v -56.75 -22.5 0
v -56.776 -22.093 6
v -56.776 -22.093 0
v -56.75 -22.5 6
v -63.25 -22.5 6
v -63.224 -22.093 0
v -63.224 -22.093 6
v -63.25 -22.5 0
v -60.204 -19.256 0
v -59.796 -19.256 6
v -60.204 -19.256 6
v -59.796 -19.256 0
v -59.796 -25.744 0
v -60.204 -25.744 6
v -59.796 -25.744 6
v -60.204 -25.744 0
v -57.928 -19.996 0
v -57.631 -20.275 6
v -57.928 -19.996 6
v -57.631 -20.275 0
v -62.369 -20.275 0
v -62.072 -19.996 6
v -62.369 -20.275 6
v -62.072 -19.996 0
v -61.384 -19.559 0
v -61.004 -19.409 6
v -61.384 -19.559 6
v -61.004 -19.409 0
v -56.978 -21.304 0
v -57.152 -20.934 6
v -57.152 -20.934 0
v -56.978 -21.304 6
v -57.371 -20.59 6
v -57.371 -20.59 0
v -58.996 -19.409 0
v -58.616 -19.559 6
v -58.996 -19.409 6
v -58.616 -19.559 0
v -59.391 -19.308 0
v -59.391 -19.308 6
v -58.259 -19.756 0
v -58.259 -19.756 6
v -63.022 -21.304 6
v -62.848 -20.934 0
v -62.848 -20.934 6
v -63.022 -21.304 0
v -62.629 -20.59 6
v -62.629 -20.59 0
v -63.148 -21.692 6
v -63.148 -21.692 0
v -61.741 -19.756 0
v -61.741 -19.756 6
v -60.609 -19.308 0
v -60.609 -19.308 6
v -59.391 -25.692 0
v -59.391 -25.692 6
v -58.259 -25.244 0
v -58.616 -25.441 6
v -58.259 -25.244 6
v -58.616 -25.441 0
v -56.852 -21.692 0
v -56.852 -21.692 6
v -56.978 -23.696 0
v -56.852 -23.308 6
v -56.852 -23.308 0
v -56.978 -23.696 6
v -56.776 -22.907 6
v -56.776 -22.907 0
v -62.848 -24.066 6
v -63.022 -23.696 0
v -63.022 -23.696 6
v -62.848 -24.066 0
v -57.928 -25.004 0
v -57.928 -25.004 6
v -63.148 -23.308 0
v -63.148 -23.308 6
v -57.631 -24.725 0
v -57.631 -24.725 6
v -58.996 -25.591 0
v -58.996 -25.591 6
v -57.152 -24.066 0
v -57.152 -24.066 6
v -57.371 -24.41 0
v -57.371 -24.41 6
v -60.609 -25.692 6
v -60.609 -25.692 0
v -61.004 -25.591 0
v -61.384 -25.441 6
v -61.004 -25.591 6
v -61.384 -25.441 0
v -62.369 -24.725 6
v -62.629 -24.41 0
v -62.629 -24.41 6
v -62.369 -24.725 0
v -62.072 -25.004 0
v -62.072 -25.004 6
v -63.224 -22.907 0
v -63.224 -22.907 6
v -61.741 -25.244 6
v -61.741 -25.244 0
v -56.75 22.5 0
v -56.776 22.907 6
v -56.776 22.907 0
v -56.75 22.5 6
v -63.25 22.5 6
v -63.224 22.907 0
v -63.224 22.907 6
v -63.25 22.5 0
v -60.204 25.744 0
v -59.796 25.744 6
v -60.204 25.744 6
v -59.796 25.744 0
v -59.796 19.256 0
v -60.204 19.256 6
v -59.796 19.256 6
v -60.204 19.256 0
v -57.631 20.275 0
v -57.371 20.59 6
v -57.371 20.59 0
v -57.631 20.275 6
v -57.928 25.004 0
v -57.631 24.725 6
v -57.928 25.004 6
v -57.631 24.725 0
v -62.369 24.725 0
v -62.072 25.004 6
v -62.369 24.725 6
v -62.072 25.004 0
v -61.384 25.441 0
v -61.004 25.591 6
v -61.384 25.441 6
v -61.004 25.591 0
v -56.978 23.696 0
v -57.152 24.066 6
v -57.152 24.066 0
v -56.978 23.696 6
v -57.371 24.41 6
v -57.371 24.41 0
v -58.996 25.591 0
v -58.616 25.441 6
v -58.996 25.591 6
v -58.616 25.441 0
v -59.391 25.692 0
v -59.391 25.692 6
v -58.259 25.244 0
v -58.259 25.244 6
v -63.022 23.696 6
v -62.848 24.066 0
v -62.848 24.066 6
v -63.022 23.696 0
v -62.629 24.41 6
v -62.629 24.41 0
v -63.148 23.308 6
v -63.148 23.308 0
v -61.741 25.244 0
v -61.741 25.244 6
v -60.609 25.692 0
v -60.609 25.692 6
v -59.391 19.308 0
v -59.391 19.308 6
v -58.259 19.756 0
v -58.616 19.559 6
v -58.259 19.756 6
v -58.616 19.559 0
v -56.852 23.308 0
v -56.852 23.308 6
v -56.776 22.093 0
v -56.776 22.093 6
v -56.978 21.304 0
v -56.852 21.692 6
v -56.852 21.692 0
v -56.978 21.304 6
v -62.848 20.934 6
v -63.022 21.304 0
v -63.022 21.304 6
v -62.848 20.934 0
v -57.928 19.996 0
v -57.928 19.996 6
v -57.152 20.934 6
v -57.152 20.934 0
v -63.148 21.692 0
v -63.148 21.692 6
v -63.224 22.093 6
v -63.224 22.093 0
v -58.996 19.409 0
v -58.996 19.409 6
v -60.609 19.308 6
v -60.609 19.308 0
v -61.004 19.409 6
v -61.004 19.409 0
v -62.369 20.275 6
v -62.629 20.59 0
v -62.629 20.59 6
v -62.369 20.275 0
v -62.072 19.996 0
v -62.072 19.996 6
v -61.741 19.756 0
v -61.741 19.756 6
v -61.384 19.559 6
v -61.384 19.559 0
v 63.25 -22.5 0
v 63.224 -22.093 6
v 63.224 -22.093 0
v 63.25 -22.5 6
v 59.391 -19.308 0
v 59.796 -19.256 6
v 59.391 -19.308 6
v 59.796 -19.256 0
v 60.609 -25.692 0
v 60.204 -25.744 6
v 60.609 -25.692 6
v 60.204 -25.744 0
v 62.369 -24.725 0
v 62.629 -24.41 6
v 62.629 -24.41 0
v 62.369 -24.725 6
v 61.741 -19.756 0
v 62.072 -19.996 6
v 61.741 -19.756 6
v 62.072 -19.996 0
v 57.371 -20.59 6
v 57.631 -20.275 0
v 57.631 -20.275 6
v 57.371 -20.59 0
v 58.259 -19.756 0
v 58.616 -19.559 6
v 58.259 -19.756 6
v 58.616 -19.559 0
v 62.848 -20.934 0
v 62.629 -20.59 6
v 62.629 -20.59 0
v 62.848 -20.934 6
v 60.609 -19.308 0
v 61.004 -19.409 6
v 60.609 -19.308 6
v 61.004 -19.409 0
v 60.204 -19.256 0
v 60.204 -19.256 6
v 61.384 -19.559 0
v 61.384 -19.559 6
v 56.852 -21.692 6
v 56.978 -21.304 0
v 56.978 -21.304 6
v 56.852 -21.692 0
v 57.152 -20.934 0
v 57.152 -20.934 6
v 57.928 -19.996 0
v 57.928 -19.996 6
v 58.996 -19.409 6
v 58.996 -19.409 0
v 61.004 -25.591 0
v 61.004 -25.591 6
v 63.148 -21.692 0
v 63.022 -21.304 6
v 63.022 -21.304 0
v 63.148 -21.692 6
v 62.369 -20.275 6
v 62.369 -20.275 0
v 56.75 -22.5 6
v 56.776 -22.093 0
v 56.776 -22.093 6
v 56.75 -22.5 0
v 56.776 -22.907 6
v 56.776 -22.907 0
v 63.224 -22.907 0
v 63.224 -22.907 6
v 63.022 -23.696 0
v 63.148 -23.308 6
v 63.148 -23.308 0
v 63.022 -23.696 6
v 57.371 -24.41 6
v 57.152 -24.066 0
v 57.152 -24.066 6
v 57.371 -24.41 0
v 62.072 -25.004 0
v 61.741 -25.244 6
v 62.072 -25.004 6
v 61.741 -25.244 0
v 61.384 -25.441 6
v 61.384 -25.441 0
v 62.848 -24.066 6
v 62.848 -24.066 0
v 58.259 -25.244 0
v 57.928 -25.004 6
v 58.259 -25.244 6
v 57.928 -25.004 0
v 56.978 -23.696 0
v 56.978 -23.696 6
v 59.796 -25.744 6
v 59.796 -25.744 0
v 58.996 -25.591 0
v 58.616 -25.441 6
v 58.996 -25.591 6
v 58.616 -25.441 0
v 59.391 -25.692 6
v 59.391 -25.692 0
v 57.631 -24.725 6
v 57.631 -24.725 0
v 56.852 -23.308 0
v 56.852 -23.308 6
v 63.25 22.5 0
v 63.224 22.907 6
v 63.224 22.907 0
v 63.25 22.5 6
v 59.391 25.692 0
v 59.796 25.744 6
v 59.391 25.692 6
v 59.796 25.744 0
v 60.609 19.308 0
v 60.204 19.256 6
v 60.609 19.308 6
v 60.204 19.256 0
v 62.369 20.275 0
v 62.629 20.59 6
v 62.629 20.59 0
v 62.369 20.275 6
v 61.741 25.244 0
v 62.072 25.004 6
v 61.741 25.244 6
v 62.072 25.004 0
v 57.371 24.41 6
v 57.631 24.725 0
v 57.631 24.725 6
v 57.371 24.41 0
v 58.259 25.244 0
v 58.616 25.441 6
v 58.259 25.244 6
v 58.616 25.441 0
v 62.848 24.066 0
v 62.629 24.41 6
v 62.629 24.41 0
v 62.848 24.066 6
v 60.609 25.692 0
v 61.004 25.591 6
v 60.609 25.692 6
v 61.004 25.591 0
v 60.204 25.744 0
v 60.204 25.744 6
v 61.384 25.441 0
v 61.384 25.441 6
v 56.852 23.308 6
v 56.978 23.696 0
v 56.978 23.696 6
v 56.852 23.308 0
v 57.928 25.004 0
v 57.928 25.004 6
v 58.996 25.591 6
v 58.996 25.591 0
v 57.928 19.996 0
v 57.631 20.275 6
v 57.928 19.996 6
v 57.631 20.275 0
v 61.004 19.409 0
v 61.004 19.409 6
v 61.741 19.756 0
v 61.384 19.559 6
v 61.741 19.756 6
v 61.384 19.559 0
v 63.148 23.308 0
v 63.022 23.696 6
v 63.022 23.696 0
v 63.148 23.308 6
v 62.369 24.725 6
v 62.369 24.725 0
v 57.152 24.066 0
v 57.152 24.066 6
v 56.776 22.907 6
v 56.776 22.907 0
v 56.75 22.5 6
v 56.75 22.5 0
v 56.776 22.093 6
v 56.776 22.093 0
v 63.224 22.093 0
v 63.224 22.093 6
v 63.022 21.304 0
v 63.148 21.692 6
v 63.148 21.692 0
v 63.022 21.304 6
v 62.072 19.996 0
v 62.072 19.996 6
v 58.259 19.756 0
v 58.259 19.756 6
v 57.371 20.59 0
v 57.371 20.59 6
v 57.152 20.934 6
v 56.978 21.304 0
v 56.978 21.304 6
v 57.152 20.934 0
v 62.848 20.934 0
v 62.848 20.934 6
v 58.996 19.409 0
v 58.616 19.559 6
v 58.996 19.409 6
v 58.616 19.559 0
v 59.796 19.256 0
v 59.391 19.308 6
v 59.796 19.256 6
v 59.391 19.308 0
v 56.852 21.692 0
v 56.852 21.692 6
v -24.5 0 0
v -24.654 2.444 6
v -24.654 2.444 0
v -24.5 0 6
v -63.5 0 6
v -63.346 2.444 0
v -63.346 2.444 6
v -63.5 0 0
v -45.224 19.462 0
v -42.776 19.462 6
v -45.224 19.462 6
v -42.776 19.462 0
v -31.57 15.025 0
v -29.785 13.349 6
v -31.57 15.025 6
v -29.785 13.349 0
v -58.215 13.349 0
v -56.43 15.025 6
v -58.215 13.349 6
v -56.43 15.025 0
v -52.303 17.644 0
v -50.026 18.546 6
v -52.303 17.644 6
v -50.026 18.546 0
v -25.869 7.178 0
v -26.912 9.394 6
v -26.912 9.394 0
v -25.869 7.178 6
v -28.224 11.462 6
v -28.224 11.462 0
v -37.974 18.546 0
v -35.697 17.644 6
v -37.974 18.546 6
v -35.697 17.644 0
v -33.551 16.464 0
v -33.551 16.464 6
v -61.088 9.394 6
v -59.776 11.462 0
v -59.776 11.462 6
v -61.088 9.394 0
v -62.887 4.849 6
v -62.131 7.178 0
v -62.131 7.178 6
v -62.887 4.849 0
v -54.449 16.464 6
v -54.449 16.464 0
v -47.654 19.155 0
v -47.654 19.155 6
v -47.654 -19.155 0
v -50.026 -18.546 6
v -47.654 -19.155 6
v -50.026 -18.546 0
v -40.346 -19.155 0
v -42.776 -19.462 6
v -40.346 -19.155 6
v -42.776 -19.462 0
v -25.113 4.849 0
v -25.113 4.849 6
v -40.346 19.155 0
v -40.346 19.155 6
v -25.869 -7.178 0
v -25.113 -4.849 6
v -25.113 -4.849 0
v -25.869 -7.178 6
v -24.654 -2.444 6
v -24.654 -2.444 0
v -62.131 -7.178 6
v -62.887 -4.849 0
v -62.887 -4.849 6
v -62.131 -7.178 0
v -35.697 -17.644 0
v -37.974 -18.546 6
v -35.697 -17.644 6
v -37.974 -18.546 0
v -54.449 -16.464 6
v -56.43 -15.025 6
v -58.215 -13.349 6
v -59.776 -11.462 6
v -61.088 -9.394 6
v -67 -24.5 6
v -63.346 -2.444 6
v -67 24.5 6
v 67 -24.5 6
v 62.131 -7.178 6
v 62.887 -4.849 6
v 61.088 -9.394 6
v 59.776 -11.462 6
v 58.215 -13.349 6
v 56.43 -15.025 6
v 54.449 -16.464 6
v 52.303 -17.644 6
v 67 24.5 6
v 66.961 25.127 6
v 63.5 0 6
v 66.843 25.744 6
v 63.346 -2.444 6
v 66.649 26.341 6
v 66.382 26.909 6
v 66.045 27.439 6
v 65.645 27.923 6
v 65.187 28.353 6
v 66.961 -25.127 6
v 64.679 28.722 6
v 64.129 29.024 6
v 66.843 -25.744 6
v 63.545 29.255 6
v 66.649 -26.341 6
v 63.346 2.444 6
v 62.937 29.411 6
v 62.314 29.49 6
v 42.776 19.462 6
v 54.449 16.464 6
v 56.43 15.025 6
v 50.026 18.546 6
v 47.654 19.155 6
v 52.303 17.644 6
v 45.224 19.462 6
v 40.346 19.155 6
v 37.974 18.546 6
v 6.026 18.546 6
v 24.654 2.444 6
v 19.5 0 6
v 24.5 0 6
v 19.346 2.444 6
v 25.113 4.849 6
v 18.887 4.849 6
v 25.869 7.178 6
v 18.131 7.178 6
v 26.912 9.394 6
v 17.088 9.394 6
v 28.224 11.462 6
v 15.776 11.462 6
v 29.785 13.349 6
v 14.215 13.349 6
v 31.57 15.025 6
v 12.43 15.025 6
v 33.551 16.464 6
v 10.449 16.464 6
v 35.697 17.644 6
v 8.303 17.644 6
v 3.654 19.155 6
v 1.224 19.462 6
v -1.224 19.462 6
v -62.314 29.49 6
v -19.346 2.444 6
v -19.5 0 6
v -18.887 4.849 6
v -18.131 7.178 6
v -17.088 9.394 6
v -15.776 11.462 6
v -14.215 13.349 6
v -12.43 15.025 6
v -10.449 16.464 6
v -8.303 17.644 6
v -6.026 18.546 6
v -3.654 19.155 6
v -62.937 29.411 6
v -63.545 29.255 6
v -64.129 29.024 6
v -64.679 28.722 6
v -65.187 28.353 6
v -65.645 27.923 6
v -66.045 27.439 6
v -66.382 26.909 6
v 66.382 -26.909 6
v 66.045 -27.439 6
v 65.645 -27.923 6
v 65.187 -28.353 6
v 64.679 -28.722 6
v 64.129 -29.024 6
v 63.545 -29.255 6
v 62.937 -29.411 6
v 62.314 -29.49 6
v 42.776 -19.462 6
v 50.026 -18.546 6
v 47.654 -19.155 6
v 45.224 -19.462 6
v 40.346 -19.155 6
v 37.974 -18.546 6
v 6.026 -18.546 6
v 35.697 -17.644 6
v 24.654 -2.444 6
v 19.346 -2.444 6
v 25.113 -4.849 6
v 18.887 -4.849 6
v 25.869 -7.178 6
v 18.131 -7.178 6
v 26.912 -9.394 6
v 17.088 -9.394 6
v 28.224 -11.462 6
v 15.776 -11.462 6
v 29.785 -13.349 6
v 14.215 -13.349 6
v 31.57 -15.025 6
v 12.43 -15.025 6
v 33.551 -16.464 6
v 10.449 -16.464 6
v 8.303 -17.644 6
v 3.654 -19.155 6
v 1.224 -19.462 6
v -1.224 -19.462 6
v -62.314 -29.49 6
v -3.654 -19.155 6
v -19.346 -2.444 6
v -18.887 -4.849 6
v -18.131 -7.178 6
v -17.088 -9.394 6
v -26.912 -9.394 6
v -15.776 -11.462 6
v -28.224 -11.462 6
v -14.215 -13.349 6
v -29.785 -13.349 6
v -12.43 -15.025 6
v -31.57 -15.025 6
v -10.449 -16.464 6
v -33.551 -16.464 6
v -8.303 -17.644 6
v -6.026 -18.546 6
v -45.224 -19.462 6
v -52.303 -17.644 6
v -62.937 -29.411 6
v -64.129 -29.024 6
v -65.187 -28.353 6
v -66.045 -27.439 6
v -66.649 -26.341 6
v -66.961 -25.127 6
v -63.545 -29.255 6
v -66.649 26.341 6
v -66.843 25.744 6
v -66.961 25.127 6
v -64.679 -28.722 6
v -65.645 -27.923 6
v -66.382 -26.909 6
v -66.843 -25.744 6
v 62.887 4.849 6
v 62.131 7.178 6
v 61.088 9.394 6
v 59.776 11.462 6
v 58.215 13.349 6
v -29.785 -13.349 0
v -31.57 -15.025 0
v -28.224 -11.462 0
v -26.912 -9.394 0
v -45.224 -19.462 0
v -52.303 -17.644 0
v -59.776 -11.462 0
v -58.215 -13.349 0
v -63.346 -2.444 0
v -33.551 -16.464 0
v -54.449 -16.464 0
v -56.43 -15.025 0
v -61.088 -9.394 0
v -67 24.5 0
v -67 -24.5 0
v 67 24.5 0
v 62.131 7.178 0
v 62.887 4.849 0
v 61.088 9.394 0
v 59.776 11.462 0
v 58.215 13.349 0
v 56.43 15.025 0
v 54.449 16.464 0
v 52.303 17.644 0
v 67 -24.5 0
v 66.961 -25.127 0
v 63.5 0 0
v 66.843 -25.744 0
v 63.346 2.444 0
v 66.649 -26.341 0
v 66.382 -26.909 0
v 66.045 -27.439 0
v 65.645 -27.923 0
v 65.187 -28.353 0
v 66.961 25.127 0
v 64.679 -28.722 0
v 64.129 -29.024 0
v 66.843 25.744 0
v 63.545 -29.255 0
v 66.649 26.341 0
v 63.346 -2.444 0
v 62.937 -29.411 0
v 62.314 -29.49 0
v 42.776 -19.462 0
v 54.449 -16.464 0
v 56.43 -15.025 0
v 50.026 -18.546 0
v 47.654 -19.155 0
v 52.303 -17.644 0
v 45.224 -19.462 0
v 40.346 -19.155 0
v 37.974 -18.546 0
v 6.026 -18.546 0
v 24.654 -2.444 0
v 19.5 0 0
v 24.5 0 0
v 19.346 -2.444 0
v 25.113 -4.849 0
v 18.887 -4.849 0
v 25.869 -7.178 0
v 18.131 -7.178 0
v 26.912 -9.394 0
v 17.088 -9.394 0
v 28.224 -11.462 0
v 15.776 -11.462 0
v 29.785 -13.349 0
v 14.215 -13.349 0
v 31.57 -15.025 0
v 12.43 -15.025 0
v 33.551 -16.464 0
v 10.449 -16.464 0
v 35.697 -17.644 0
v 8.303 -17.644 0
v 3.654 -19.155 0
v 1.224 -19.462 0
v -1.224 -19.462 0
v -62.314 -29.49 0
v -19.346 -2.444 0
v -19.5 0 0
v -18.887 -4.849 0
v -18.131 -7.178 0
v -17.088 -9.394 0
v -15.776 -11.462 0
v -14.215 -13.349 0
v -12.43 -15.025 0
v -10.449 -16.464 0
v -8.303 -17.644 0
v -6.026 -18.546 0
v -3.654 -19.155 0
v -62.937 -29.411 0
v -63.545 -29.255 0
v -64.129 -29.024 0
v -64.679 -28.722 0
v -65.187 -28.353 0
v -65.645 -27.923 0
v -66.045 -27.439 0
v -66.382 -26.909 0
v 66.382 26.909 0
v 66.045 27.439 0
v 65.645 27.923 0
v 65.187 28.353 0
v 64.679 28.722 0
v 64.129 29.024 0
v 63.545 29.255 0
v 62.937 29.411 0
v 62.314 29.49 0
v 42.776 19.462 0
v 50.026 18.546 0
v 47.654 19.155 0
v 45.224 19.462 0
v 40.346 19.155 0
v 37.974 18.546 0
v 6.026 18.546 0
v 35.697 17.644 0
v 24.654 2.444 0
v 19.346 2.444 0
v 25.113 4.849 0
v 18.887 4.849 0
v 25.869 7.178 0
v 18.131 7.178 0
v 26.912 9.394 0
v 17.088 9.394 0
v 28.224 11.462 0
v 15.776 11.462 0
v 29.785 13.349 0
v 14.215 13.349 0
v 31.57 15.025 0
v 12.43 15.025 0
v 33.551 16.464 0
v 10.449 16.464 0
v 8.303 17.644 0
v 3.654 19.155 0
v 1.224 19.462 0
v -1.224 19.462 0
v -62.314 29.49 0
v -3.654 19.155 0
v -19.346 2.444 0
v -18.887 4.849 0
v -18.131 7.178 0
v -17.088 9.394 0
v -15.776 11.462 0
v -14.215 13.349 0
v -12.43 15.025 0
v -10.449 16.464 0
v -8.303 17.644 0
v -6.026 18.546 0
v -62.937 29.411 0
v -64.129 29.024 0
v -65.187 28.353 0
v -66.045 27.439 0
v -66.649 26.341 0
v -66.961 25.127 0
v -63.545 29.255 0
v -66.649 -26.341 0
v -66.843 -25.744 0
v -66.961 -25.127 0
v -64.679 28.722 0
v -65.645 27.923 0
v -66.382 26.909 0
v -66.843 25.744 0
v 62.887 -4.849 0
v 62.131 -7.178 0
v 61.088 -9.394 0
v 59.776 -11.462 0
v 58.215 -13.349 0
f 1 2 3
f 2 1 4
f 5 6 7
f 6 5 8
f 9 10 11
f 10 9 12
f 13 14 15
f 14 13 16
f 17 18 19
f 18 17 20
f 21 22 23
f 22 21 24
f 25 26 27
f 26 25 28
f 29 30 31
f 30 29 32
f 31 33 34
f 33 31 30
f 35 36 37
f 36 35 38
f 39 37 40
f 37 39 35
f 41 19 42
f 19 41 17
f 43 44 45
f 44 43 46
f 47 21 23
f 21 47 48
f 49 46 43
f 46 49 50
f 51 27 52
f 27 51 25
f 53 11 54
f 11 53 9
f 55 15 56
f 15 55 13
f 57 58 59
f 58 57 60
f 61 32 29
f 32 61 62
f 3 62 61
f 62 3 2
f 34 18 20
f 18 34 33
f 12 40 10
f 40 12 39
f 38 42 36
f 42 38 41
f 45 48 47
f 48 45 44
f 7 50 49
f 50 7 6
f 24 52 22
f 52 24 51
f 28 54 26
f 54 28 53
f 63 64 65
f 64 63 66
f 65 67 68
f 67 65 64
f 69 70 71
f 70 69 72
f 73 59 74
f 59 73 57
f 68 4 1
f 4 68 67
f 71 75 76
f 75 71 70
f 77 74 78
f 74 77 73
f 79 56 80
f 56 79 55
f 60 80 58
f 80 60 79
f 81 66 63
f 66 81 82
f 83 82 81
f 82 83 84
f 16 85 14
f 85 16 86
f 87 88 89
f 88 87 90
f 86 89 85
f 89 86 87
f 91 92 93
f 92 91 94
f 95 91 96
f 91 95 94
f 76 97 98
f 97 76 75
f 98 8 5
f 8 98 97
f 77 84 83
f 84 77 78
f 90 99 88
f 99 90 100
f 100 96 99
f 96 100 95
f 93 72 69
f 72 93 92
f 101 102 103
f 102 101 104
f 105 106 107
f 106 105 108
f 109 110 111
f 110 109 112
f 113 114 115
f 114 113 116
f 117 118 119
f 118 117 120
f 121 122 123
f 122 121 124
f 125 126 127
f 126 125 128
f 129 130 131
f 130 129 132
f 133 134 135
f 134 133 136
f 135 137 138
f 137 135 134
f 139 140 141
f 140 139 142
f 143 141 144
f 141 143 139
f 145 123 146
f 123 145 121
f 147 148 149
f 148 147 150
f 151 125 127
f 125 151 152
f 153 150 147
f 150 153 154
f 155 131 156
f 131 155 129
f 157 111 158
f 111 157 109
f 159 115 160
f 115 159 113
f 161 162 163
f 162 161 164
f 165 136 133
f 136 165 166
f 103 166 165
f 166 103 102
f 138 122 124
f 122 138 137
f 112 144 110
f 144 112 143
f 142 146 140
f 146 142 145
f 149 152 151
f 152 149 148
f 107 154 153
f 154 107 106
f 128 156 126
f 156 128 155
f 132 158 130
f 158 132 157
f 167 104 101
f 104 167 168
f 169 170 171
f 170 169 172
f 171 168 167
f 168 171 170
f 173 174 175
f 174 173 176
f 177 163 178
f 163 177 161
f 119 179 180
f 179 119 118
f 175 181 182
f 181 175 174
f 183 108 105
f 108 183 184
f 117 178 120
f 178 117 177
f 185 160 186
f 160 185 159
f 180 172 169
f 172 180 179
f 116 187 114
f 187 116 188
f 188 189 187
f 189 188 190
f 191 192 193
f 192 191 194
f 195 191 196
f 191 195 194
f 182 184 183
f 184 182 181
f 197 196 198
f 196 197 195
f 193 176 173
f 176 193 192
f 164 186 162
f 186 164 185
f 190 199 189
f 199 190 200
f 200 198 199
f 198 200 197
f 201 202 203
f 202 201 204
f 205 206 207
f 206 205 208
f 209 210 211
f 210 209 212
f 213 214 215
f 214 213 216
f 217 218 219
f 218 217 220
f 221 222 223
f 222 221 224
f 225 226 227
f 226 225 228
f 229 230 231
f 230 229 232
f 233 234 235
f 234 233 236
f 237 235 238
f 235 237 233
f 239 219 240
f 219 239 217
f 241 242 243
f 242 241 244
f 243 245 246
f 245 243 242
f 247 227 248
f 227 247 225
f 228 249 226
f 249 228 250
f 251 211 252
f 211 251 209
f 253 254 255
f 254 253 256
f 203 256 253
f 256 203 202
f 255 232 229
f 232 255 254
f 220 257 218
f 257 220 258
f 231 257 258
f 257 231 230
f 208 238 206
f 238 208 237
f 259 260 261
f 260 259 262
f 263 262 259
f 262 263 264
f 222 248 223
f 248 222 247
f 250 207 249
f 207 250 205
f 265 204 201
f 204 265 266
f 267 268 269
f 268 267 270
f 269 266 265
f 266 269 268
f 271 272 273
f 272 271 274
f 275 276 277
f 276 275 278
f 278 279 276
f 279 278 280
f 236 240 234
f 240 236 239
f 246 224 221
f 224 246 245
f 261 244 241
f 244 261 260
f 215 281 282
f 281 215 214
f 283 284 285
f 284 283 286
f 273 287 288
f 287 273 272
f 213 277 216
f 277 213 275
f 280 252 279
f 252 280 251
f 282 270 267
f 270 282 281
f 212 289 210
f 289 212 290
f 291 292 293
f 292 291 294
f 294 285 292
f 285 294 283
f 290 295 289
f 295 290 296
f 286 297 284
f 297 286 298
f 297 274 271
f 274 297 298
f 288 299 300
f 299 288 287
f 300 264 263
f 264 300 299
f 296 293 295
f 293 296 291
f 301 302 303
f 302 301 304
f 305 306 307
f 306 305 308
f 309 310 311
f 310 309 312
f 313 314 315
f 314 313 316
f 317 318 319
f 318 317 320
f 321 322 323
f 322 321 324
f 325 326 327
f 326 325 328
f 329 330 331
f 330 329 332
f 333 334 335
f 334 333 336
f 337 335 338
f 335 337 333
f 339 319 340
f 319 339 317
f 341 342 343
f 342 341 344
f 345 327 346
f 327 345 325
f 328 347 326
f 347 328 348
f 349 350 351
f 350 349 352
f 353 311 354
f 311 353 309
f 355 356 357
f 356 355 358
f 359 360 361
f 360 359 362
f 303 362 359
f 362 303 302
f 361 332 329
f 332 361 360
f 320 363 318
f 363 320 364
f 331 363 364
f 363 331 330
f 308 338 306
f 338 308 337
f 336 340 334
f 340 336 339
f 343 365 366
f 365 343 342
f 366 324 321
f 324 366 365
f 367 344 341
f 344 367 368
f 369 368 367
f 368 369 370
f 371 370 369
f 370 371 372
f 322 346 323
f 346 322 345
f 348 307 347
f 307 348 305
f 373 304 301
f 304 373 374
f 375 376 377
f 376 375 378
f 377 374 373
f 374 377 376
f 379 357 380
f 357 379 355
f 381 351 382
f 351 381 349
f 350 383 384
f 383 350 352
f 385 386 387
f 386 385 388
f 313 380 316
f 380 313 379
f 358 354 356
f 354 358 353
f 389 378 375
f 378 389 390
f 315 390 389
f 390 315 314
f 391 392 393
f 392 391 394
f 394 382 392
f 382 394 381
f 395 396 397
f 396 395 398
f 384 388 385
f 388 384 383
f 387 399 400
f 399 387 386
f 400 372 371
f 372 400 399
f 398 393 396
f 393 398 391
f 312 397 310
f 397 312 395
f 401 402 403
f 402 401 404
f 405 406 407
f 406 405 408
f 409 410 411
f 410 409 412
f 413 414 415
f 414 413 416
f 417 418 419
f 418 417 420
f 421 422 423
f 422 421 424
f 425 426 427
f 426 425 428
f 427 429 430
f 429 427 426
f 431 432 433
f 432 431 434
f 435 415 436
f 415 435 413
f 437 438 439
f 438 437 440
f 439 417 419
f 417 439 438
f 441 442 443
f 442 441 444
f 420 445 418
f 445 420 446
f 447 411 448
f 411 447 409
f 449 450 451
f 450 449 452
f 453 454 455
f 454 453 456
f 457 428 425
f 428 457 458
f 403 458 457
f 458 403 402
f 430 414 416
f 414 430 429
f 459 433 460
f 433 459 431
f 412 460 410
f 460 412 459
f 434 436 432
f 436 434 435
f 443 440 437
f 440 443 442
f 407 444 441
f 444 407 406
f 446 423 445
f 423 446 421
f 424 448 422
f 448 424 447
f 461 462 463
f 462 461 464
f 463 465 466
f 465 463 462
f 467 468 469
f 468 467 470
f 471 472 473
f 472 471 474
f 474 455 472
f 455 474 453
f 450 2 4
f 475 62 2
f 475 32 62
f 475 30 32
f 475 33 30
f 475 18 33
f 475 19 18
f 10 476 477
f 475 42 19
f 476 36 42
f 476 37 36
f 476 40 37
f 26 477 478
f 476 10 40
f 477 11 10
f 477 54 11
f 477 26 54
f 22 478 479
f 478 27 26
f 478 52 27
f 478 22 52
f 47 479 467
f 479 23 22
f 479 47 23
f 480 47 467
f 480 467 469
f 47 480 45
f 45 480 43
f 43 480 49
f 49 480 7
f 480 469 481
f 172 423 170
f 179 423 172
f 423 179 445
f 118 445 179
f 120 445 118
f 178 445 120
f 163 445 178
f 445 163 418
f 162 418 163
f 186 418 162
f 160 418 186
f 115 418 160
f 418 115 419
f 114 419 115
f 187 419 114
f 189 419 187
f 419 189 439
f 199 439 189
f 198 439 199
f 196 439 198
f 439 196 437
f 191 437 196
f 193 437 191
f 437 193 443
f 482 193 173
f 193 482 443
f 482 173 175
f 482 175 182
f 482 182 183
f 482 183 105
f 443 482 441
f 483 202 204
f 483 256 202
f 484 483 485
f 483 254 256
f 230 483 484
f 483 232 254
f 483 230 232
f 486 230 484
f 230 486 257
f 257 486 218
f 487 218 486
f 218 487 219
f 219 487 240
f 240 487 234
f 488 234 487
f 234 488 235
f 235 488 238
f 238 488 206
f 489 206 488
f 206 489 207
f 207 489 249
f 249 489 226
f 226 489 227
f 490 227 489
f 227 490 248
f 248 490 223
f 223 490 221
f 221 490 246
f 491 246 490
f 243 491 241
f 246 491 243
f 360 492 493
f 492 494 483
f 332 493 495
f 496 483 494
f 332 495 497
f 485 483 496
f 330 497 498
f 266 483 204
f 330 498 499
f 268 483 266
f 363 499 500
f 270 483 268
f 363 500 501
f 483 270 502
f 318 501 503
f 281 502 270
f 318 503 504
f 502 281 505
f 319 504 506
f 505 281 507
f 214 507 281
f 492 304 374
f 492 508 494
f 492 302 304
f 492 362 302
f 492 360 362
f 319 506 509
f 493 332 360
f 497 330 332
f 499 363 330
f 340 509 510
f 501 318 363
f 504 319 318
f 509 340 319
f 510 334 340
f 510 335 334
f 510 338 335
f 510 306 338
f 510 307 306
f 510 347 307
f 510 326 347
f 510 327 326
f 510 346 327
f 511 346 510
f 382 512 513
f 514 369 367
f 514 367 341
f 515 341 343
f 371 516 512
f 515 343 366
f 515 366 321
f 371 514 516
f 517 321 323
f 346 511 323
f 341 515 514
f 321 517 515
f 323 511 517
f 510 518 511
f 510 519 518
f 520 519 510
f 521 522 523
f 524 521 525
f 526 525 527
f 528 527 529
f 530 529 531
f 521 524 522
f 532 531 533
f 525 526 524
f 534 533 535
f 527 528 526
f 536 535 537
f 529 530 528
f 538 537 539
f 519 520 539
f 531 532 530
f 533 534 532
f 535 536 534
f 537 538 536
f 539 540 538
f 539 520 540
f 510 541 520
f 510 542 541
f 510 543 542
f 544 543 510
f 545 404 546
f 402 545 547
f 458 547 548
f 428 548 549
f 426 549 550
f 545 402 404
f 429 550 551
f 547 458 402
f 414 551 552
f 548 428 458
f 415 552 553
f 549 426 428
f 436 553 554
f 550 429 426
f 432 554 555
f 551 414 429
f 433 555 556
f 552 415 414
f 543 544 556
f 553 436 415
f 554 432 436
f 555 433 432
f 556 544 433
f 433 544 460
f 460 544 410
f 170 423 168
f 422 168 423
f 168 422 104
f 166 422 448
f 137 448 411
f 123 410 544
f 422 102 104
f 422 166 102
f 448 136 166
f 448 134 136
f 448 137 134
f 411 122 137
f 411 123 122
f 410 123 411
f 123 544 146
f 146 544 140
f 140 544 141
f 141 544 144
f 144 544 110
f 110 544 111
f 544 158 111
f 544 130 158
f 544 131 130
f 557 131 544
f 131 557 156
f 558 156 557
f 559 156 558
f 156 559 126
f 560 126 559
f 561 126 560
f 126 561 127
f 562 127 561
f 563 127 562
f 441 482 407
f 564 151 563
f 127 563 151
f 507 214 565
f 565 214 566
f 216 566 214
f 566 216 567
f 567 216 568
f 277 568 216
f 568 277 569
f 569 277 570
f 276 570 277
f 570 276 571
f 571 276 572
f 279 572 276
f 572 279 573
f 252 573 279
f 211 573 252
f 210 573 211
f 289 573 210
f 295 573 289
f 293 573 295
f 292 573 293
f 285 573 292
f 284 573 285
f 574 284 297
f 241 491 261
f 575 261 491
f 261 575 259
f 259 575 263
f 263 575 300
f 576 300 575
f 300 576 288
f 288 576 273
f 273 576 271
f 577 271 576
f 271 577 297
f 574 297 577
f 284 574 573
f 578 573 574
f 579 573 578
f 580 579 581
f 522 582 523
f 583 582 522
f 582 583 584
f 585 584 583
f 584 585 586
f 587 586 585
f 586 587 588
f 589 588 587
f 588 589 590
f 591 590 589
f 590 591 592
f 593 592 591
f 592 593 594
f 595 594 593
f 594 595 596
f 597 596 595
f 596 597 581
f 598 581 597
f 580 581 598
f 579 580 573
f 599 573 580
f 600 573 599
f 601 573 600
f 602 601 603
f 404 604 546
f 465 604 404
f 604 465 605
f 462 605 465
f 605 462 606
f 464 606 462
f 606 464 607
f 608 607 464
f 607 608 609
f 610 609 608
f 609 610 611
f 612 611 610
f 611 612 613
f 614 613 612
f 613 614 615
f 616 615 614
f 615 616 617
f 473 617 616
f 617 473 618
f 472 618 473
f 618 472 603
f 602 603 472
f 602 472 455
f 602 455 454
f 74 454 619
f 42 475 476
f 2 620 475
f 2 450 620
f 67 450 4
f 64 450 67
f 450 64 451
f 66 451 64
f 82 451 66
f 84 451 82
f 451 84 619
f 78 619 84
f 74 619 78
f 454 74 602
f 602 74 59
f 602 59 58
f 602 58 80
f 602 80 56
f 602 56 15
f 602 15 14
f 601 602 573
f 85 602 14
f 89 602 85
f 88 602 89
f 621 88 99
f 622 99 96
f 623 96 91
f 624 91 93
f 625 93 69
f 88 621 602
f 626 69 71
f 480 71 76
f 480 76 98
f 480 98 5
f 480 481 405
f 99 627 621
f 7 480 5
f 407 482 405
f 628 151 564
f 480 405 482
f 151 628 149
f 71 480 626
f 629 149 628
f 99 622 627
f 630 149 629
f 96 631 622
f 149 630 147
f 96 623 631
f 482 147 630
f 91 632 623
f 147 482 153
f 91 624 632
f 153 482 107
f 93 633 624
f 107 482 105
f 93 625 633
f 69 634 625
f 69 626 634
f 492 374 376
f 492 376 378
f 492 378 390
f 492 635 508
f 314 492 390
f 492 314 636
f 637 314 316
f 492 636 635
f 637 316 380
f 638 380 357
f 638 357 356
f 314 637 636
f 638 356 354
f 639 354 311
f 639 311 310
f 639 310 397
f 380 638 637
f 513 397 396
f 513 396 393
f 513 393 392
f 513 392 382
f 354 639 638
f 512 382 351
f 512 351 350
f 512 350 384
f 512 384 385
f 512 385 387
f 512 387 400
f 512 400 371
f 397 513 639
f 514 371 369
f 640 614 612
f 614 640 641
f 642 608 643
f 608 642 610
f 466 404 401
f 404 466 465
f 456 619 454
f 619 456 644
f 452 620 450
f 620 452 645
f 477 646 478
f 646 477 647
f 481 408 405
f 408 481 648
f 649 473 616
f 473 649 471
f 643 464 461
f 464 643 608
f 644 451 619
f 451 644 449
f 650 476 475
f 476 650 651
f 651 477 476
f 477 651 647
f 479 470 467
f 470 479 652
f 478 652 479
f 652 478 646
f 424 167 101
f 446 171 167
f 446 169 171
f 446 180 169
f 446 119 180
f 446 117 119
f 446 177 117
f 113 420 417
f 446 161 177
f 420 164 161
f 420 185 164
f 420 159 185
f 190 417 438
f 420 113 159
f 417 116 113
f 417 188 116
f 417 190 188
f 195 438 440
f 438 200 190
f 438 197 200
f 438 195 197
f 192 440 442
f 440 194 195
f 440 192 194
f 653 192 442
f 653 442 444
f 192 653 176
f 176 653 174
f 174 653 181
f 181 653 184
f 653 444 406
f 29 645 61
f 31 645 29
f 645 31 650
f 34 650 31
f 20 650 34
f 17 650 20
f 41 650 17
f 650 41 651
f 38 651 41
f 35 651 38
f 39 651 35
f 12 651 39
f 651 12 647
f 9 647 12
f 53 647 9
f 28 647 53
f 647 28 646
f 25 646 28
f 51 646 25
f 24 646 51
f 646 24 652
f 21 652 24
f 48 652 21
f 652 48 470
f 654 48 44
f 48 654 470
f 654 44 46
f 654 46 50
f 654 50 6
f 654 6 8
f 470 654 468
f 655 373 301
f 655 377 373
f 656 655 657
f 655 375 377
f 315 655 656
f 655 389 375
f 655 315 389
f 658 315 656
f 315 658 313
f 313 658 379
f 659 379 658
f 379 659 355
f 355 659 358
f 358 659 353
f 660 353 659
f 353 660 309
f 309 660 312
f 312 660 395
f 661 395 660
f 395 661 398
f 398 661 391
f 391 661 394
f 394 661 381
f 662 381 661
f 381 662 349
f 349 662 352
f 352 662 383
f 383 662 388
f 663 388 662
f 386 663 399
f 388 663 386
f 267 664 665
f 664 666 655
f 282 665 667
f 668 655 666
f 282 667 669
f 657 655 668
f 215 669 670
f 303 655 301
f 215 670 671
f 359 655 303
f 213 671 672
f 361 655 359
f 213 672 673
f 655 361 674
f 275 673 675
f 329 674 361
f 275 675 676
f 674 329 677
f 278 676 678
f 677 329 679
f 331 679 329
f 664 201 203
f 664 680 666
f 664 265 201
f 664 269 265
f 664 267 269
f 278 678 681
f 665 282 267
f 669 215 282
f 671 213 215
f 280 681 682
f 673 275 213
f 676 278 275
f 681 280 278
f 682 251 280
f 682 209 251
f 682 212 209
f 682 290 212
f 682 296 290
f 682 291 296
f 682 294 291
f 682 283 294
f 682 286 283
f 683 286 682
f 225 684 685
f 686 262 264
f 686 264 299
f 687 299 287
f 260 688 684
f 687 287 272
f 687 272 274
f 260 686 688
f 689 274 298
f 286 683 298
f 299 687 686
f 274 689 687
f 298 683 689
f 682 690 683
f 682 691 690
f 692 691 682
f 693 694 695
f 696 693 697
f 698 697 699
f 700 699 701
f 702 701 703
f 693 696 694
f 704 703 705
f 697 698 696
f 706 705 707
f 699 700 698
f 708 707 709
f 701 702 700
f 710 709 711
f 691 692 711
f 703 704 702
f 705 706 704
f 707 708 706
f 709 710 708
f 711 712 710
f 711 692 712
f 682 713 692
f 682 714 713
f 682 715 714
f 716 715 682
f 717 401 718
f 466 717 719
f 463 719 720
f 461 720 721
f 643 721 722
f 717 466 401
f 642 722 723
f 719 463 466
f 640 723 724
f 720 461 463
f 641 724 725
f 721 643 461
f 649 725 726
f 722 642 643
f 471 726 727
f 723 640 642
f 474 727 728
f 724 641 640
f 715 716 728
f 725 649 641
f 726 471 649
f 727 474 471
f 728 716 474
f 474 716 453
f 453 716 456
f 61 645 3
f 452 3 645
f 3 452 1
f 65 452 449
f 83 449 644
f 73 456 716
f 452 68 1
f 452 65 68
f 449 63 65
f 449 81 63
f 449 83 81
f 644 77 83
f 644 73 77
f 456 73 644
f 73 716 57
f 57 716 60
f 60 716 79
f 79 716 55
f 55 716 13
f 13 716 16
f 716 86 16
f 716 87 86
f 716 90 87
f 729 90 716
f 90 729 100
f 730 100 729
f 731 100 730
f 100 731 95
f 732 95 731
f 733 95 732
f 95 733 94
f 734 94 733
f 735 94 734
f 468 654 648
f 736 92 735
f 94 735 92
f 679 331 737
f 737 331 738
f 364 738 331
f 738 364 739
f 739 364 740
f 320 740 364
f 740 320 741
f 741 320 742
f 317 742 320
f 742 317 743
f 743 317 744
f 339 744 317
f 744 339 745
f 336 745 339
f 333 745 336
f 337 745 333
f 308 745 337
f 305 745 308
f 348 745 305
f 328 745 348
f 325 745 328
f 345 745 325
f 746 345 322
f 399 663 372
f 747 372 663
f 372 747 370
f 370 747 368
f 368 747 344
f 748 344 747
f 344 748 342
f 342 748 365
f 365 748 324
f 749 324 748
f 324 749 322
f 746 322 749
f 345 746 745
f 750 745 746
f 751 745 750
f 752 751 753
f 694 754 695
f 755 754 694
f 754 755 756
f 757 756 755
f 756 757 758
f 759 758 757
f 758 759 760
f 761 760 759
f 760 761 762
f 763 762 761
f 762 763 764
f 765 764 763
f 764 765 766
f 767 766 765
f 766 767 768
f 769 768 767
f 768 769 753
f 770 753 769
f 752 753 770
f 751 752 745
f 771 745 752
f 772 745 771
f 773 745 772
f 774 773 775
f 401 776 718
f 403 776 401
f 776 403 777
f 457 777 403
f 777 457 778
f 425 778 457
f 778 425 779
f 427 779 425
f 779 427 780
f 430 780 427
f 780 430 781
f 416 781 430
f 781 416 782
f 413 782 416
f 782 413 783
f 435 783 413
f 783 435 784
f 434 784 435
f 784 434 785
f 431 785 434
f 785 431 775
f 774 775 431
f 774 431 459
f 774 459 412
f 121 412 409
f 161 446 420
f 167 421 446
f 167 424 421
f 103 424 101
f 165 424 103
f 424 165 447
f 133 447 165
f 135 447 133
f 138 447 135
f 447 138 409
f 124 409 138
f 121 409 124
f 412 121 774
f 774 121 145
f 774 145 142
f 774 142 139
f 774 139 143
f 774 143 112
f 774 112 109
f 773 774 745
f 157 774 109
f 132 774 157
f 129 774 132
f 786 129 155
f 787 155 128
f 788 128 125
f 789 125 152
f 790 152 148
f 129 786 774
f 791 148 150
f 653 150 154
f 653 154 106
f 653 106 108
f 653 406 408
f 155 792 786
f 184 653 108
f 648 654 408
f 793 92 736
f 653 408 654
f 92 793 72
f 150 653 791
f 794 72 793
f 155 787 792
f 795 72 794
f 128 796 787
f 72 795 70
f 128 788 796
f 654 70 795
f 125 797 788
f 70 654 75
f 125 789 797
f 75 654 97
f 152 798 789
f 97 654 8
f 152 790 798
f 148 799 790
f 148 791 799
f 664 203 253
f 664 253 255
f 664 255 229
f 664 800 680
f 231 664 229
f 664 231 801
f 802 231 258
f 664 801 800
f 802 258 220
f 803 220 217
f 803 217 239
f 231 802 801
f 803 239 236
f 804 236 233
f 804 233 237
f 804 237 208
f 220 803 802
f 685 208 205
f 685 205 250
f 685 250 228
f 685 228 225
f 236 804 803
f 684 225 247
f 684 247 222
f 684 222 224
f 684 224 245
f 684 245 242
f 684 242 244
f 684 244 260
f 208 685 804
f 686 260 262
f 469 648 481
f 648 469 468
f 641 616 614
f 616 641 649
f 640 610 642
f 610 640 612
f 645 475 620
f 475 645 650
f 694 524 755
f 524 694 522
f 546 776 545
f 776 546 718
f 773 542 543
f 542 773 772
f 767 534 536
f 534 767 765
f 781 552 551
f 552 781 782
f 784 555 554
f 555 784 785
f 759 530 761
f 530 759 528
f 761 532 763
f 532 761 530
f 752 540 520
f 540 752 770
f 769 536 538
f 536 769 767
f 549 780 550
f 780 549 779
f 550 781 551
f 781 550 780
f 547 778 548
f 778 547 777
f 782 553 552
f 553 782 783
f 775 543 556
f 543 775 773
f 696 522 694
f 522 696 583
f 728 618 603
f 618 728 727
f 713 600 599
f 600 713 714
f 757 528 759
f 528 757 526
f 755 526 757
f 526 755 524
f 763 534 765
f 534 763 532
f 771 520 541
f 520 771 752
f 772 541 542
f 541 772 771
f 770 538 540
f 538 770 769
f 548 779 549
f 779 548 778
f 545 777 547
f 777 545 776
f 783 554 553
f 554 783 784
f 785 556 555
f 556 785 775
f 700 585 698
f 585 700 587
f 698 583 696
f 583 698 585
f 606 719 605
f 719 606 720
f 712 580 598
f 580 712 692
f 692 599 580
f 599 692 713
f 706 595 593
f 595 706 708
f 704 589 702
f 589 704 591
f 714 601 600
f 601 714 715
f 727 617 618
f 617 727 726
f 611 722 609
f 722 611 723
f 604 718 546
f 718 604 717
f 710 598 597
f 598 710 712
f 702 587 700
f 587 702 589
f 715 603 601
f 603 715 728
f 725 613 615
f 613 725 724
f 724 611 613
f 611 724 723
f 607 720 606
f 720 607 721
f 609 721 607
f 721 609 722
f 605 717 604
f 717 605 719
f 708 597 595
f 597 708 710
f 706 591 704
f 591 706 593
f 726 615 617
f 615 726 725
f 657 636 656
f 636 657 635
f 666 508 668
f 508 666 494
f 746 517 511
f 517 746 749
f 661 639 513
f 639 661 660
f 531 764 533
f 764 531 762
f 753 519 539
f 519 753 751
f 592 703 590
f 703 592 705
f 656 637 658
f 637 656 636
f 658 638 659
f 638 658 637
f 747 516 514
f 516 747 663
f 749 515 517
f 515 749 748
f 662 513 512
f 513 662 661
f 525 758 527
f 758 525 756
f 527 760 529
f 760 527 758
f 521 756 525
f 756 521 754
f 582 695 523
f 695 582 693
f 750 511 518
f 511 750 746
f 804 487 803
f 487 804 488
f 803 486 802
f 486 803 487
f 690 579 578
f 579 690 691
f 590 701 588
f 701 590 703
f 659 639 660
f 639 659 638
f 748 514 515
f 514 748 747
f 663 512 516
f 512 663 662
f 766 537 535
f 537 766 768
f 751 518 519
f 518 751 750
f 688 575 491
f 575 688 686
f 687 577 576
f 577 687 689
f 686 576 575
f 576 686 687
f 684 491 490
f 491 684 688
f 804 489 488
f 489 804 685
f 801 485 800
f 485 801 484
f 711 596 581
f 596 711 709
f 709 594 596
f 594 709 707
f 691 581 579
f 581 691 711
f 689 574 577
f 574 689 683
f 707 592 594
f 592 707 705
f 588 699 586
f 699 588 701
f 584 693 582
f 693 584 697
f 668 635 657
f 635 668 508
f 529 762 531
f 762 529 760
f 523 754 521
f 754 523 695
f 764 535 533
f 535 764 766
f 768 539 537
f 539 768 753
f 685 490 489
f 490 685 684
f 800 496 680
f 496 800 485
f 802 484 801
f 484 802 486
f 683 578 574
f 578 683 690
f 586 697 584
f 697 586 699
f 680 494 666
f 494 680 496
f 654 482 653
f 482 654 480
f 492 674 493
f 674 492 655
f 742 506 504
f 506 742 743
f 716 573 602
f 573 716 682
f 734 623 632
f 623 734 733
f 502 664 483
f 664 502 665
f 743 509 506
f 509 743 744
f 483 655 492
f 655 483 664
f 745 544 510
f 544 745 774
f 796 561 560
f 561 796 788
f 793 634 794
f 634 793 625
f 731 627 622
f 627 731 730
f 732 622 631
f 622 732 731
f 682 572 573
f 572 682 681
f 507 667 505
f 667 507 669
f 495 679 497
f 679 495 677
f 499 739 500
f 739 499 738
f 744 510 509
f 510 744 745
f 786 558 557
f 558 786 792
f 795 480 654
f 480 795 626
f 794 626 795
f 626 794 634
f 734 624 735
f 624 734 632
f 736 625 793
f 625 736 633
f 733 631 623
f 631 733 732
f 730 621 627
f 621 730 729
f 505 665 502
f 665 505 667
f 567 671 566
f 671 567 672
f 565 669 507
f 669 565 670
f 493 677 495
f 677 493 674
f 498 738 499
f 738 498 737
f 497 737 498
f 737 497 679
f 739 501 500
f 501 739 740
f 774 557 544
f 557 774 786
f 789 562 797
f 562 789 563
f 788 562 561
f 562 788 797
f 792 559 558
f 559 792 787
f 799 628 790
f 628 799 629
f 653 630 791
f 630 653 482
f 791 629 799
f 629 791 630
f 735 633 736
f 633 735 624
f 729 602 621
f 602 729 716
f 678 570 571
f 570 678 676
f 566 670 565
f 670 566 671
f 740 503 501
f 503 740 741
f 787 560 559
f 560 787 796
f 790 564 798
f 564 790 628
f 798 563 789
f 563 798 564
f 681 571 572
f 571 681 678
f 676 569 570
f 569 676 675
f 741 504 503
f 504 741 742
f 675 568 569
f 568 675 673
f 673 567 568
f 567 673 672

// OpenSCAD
$fn = 50;


difference() {
	union() {
		hull() {
			translate(v = [-62.0000000000, 24.5000000000, 0]) {
				cylinder(h = 6, r = 5);
			}
			translate(v = [62.0000000000, 24.5000000000, 0]) {
				cylinder(h = 6, r = 5);
			}
			translate(v = [-62.0000000000, -24.5000000000, 0]) {
				cylinder(h = 6, r = 5);
			}
			translate(v = [62.0000000000, -24.5000000000, 0]) {
				cylinder(h = 6, r = 5);
			}
		}
	}
	union() {
		#translate(v = [-60.0000000000, -22.5000000000, -100.0000000000]) {
			cylinder(h = 200, r = 3.2500000000);
		}
		#translate(v = [-60.0000000000, 22.5000000000, -100.0000000000]) {
			cylinder(h = 200, r = 3.2500000000);
		}
		#translate(v = [60.0000000000, -22.5000000000, -100.0000000000]) {
			cylinder(h = 200, r = 3.2500000000);
		}
		#translate(v = [60.0000000000, 22.5000000000, -100.0000000000]) {
			cylinder(h = 200, r = 3.2500000000);
		}
		#translate(v = [-44.0000000000, 0, 0]) {
			cylinder(h = 6, r = 19.5000000000);
		}
		#cylinder(h = 6, r = 19.5000000000);
		#translate(v = [44.0000000000, 0, 0]) {
			cylinder(h = 6, r = 19.5000000000);
		}
	}
}
